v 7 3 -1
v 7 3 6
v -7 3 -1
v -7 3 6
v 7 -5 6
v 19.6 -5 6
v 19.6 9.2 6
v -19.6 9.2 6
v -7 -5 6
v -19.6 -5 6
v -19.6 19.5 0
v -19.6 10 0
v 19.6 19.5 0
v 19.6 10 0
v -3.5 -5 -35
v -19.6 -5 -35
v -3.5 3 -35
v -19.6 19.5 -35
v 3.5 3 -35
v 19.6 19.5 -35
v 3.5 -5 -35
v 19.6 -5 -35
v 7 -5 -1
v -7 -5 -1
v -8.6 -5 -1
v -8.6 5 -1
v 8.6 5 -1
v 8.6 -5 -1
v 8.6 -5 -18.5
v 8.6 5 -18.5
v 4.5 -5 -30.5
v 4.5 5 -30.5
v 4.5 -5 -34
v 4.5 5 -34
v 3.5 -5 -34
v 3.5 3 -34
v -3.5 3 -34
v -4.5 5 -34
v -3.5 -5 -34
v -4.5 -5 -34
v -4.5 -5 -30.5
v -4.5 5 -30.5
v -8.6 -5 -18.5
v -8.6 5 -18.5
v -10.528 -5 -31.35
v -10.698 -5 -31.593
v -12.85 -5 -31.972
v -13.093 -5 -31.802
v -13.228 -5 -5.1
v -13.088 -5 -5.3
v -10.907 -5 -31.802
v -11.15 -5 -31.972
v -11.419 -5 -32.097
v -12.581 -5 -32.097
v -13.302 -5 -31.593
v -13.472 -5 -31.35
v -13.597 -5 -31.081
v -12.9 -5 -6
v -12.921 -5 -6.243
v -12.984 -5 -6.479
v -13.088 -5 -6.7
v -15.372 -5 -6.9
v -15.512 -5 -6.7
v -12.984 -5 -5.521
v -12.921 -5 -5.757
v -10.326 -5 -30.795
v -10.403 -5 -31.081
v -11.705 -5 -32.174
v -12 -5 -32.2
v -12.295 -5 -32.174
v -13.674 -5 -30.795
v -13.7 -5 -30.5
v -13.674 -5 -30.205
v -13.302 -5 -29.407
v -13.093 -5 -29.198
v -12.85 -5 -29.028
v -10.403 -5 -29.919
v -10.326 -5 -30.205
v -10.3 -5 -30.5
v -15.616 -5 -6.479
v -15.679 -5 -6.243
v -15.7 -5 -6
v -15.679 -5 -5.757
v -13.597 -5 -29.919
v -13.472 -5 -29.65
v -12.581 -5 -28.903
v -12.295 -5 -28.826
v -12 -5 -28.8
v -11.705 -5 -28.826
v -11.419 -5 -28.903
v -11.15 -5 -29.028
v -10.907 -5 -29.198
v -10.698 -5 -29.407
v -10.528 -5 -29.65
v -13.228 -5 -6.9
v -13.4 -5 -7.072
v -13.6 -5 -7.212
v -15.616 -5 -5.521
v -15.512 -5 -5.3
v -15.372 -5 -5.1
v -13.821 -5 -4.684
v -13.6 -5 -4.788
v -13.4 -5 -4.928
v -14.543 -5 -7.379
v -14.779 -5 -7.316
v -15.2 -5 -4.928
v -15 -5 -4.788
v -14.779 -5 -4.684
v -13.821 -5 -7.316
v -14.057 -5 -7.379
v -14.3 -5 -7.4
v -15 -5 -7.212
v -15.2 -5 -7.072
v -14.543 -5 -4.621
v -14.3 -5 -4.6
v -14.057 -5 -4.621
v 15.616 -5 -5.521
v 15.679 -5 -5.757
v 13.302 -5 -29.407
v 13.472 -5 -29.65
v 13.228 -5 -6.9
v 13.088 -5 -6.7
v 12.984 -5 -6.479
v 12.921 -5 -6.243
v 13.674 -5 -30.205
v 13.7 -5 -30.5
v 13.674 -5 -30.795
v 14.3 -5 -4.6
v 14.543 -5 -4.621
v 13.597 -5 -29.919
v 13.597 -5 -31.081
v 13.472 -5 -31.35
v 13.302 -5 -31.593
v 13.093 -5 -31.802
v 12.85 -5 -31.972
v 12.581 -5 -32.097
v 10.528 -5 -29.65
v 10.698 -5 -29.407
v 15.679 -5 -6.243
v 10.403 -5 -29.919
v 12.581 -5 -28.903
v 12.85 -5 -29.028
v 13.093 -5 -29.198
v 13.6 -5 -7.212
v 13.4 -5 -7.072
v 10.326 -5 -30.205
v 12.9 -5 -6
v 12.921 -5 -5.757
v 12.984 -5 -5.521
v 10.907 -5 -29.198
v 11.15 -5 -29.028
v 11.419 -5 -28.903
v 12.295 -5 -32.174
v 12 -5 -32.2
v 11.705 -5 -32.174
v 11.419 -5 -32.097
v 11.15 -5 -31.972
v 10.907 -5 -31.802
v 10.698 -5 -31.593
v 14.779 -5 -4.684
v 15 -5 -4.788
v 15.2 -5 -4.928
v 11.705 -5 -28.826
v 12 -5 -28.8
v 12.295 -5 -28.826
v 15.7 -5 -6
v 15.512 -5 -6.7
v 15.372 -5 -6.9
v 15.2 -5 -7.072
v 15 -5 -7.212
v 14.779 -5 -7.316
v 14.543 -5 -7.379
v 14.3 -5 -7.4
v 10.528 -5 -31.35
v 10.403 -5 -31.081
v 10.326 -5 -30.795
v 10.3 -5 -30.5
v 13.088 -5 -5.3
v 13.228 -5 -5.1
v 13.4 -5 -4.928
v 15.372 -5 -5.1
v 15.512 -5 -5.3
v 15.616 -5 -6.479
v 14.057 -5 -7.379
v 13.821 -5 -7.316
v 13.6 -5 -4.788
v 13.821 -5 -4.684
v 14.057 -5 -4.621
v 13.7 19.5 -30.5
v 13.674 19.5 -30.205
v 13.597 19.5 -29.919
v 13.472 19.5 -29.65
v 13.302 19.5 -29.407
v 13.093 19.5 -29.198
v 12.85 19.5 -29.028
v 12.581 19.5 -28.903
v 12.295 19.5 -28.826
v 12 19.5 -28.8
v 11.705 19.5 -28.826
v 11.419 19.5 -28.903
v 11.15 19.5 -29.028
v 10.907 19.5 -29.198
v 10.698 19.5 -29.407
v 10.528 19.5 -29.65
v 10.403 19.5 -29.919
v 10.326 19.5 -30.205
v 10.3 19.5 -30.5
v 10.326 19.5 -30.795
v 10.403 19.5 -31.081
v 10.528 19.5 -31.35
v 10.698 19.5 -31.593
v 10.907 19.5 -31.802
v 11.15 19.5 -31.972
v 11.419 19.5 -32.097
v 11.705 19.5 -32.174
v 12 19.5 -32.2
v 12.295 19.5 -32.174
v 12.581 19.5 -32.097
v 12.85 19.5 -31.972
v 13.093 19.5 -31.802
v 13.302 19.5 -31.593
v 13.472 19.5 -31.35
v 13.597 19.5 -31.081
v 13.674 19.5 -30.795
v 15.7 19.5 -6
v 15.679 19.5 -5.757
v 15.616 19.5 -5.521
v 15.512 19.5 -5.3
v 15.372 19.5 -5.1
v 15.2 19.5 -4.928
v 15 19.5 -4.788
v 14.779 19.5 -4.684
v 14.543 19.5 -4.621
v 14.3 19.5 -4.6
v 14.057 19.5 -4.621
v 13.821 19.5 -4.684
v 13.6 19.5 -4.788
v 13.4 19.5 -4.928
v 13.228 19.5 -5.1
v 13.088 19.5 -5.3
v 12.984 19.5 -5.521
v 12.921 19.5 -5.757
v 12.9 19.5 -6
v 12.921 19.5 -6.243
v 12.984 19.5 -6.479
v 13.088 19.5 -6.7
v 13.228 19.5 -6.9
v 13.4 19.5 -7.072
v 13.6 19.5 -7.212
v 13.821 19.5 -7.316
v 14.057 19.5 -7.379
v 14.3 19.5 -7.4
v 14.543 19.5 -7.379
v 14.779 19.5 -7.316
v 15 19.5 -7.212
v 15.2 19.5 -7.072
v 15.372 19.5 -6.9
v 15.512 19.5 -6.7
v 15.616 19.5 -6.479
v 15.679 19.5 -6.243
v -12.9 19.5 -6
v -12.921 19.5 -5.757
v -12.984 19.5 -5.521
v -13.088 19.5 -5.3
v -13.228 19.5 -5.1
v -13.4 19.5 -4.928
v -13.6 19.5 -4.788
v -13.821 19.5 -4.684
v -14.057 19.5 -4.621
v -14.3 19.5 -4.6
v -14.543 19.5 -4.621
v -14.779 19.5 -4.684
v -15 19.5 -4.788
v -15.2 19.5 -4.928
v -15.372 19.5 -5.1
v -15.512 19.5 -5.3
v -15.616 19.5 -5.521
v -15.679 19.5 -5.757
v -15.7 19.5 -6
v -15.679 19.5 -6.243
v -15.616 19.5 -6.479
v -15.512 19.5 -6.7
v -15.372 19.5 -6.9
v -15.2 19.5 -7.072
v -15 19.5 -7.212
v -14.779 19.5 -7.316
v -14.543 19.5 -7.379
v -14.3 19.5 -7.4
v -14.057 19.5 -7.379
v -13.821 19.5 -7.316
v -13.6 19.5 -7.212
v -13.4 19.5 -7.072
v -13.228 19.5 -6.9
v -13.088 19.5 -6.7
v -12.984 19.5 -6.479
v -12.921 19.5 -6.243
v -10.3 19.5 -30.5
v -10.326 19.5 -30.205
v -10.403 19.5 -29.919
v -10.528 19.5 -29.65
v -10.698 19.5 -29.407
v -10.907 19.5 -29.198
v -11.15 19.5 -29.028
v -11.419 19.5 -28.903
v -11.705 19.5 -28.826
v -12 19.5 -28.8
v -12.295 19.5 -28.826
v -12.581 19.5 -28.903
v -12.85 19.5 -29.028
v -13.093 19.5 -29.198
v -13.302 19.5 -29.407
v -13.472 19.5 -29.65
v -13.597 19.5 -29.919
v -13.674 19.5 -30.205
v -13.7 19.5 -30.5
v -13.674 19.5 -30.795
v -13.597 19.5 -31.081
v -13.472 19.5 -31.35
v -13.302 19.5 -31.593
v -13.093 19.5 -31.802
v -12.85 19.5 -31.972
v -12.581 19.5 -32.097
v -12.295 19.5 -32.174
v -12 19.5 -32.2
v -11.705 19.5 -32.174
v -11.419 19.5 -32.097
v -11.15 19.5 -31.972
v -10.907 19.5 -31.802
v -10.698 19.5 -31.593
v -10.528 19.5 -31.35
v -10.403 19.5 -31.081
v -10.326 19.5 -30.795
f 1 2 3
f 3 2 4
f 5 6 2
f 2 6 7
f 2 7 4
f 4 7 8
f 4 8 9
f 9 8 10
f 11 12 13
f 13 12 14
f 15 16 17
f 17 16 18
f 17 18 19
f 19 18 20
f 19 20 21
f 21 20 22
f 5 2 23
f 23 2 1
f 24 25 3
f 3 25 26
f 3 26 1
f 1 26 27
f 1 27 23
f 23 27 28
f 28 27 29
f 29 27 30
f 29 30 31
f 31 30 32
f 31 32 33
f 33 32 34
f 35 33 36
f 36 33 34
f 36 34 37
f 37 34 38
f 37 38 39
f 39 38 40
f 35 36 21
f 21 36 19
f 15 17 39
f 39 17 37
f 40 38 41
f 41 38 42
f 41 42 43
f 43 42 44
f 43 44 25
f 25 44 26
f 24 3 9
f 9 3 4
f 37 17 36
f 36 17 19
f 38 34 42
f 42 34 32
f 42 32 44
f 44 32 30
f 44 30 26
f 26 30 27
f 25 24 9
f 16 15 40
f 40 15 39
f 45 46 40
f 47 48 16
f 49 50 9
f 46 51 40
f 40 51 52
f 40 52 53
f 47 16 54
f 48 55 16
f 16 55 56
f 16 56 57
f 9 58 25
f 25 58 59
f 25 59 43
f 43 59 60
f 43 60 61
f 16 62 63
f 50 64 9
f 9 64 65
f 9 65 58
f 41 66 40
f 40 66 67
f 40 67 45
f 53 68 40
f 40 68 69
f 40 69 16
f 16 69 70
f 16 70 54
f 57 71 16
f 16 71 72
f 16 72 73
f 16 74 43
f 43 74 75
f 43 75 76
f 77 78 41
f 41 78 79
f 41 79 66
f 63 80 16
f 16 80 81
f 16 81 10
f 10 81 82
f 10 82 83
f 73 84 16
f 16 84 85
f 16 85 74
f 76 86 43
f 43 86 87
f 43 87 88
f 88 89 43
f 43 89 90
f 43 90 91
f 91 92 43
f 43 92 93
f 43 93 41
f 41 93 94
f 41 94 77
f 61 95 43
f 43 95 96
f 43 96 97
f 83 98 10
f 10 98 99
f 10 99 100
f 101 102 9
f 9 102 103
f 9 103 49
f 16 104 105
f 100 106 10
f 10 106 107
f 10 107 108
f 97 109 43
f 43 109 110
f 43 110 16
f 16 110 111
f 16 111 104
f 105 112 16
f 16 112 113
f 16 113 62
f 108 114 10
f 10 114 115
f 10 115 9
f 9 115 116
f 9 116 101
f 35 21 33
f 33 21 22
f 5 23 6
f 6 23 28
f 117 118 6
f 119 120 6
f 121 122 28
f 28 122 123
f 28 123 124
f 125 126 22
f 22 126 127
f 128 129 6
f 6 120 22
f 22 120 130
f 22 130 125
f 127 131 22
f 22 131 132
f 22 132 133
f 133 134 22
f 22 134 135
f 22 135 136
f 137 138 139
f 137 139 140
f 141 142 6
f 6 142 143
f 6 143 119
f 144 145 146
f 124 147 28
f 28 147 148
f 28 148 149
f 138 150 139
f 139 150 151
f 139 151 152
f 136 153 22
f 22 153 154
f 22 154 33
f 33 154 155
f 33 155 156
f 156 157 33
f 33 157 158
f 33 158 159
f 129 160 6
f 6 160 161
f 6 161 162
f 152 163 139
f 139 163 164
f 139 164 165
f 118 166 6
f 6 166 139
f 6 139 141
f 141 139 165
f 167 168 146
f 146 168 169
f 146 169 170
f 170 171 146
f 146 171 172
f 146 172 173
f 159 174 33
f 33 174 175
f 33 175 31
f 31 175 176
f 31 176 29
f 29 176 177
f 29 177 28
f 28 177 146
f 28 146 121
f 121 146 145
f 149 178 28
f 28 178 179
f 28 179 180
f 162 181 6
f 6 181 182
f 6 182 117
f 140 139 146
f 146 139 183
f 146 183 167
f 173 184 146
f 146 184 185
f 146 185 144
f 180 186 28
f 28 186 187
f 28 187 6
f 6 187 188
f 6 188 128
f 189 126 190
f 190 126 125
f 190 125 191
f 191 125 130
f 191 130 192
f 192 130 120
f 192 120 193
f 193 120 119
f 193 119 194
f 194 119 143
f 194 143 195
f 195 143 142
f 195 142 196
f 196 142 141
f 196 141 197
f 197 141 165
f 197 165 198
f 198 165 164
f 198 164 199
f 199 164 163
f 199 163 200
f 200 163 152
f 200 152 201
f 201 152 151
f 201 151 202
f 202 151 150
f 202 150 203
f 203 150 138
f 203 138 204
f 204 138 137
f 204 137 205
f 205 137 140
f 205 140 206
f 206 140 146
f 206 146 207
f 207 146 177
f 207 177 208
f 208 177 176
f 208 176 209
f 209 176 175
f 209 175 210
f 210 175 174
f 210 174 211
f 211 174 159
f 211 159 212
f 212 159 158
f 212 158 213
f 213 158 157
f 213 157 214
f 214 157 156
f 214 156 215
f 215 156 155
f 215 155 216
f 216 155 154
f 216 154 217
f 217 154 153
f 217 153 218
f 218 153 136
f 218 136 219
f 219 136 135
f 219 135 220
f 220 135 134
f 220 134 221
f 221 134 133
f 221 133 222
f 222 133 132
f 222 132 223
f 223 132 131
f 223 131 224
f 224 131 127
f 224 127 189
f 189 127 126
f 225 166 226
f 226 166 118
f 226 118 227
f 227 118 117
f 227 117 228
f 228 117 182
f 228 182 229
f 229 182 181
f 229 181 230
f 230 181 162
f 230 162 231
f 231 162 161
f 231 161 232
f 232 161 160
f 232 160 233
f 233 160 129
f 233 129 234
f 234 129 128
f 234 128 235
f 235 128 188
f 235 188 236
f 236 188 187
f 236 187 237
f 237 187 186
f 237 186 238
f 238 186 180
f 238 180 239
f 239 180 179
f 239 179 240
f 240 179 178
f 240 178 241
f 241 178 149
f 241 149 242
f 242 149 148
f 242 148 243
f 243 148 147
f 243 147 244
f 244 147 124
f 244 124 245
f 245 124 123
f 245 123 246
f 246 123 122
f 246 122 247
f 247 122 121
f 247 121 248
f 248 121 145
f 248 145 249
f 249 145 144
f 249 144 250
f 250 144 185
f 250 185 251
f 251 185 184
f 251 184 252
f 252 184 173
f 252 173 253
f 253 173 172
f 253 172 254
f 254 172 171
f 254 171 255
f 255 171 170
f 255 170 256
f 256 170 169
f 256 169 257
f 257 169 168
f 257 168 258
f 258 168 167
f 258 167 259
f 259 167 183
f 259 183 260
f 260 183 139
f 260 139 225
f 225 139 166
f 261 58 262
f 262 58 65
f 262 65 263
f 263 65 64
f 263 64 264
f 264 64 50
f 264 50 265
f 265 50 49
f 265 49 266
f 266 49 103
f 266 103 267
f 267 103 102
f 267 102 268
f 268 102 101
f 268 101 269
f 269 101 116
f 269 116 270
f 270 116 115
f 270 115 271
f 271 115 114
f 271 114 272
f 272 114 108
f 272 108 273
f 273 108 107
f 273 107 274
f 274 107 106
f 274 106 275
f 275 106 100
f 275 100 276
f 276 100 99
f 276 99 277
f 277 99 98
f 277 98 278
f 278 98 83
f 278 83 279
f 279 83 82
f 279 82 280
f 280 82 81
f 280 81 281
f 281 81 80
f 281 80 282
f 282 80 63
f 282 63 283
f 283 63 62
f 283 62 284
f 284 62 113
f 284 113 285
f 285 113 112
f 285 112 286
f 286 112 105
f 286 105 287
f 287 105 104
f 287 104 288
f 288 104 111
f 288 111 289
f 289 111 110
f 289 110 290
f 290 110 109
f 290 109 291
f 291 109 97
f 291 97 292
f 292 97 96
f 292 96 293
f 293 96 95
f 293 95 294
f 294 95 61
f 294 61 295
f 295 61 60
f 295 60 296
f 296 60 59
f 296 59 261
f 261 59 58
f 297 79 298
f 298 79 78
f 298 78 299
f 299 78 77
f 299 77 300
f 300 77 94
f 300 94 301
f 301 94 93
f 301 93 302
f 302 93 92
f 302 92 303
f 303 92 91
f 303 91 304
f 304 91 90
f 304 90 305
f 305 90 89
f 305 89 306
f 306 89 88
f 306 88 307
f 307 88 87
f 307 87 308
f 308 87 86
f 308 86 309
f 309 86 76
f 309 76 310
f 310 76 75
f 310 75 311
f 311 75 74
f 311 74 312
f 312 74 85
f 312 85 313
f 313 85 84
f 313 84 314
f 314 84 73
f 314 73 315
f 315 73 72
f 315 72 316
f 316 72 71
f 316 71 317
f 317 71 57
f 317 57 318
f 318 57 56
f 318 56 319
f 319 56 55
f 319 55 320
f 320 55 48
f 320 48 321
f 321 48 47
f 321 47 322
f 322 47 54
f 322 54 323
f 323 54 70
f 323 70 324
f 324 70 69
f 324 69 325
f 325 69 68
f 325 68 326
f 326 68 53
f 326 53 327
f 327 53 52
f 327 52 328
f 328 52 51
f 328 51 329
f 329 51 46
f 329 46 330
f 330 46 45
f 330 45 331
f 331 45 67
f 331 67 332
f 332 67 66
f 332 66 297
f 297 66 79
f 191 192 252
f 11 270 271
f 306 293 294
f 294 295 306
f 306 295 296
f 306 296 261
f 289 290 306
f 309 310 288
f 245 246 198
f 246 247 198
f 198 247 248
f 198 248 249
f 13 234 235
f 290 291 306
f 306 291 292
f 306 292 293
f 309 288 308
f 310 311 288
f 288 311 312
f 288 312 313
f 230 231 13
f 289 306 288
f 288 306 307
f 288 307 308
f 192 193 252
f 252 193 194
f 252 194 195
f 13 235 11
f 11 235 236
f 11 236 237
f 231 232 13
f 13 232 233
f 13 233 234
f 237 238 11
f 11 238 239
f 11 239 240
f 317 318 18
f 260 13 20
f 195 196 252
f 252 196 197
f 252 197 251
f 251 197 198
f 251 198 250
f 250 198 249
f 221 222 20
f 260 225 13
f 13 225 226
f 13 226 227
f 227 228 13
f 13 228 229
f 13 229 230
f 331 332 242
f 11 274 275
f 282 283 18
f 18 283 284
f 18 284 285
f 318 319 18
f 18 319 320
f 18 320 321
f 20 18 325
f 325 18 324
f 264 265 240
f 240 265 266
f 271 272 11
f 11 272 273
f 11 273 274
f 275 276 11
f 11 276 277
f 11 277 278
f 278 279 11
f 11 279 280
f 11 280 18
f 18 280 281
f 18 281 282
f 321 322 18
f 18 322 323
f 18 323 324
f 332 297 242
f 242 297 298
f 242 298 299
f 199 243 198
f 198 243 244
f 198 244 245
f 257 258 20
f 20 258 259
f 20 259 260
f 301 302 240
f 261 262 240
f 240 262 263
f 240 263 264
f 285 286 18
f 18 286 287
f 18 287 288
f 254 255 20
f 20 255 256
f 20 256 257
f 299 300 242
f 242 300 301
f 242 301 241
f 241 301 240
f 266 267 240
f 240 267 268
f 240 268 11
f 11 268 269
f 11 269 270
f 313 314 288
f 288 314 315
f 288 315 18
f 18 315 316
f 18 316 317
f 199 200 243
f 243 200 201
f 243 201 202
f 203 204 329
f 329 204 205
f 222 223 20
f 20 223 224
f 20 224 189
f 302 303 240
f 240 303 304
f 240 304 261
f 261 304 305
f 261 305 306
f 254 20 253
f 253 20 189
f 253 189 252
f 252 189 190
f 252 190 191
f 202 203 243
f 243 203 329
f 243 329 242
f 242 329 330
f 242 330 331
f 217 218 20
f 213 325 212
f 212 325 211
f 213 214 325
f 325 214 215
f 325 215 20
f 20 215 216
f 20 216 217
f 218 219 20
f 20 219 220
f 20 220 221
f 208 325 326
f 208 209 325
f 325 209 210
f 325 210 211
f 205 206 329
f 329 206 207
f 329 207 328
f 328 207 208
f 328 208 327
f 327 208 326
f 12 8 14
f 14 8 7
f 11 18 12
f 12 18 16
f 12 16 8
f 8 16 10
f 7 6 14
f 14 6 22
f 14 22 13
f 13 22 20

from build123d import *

# Parameters (mm, degrees)
SKETCH_1_W          = 40
SKETCH_1_H          = 20
EXTRUDE_1_DEPTH     = 6
SKETCH_2_W          = 40
SKETCH_2_H          = 32.5
EXTRUDE_2_DEPTH     = 35
CUT_EXTRUDE_1_DEPTH = 13
CUT_EXTRUDE_2_DEPTH = 2
SKETCH_6_W          = 40
SKETCH_6_H          = 41
CUT_EXTRUDE_3_DEPTH = 5
SKETCH_8_R          = 1.7
SKETCH_8_R_2        = 1.4
CUT_EXTRUDE_4_DEPTH = 49.79805324
CUT_EXTRUDE_5_REACH = 48.165
SKETCH_9_W          = 40
SKETCH_9_H          = 3
CHAMFER_1_SIZE2     = 6
CHAMFER_1_SIZE      = 0.8
CUT_EXTRUDE_6_REACH = 49.173
SKETCH_11_W         = 0.4
SKETCH_11_H         = 41


with BuildPart() as part:
    # Эскиз1 → Бобышка-Вытянуть1 (new body)
    with BuildSketch(Plane.XY):
        Rectangle(SKETCH_1_W, SKETCH_1_H)
    extrude(amount=EXTRUDE_1_DEPTH)

    # Эскиз2 → Бобышка-Вытянуть2 (add)
    with BuildSketch(Plane(origin=(0, 0, 0), x_dir=(-1, 0, 0), z_dir=(0, 0, -1))):
        with Locations((0, 6.25)):
            Rectangle(SKETCH_2_W, SKETCH_2_H)
    extrude(amount=EXTRUDE_2_DEPTH)

    # Эскиз3 → Вырез-Вытянуть1 (cut)
    with BuildSketch(Plane.XZ.offset(10)):
        Polygon((-7, 6), (-7, -1), (-8.6, -1), (-8.6, -18.5), (-4.5, -30.5), (-4.5, -34), (-3.5, -34), (-3.5, -35), (3.5, -35), (3.5, -34), (4.5, -34), (4.5, -30.5), (8.6, -18.5), (8.6, -1), (7, -1), (7, 6), align=None)
    extrude(amount=-CUT_EXTRUDE_1_DEPTH, mode=Mode.SUBTRACT)

    # Эскиз5 → Вырез-Вытянуть2 (cut)
    with BuildSketch(Plane.XZ.offset(-3)):
        Polygon((-8.6, -1), (8.6, -1), (8.6, -18.5), (4.5, -30.5), (4.5, -34), (-4.5, -34), (-4.5, -30.5), (-8.6, -18.5), align=None)
    extrude(amount=-CUT_EXTRUDE_2_DEPTH, mode=Mode.SUBTRACT)

    # Эскиз6 → Вырез-Вытянуть3 (cut)
    with BuildSketch(Plane.XZ.offset(10)):
        with Locations((0, -14.5)):
            Rectangle(SKETCH_6_W, SKETCH_6_H)
    extrude(amount=-CUT_EXTRUDE_3_DEPTH, mode=Mode.SUBTRACT)

    # Эскиз8 → Вырез-Вытянуть4 (cut, through all)
    with BuildSketch(Plane.XZ.offset(5)):
        with Locations((12, -30.5)):
            Circle(SKETCH_8_R)
        with Locations((14.3, -6)):
            Circle(SKETCH_8_R_2)
        with Locations(Location((-12, -30.5, 0), (0, 0, 180))):
            Circle(SKETCH_8_R)
        with Locations(Location((-14.3, -6, 0), (0, 0, 180))):
            Circle(SKETCH_8_R_2)
    extrude(amount=-CUT_EXTRUDE_4_DEPTH, mode=Mode.SUBTRACT)

    # Вырез-Вытянуть5: up to this face of the body (flat: up to its plane)
    cut_extrude_5_end = Plane(part.part.faces().sort_by_distance((0, 9.272988506, -35))[0])
    # Эскиз9 → Вырез-Вытянуть5 (cut, up to the picked face)
    with BuildSketch(Plane.XY, mode=Mode.PRIVATE) as cut_extrude_5_sk1:
        with Locations((0, 21)):
            Rectangle(SKETCH_9_W, SKETCH_9_H)
    cut_extrude_5_tool1 = split(extrude(cut_extrude_5_sk1.sketch, amount=-CUT_EXTRUDE_5_REACH, mode=Mode.PRIVATE), bisect_by=cut_extrude_5_end, keep=Keep.BOTH, mode=Mode.PRIVATE)
    add(cut_extrude_5_tool1.solids().sort_by(Axis((0, 21, 0), (0, 0, -1)))[0], mode=Mode.SUBTRACT)

    # Фаска1
    chamfer_1_edges = [part.edges().sort_by_distance(p)[0] for p in [
        (0, 10, 6),
    ]]
    chamfer_1_side = [part.faces().sort_by_distance(p)[0] for p in [
        (0, 9.984, 6),
    ]]
    chamfer(chamfer_1_edges, length=CHAMFER_1_SIZE - 0.0001, length2=CHAMFER_1_SIZE2 - 0.0001, reference=chamfer_1_side[0])  # a hair under: the kernel refuses the full size

    # Вырез-Вытянуть6: up to this face of the body (flat: up to its plane)
    cut_extrude_6_end = Plane(part.part.faces().sort_by_distance((13.552984989, -5, -15.226398396))[0])
    # Эскиз11 → Вырез-Вытянуть6 (cut, up to the picked face)
    with BuildSketch(Plane(origin=(0, 19.5, 0), x_dir=(1, 0, 0), z_dir=(0, 1, 0)), mode=Mode.PRIVATE) as cut_extrude_6_sk1:
        with Locations((-19.8, 14.5)):
            Rectangle(SKETCH_11_W, SKETCH_11_H)
    cut_extrude_6_tool1 = split(extrude(cut_extrude_6_sk1.sketch, amount=-CUT_EXTRUDE_6_REACH, mode=Mode.PRIVATE), bisect_by=cut_extrude_6_end, keep=Keep.BOTH, mode=Mode.PRIVATE)
    # Эскиз11 → Вырез-Вытянуть6 (cut, up to the picked face)
    with BuildSketch(Plane(origin=(0, 19.5, 0), x_dir=(1, 0, 0), z_dir=(0, 1, 0)), mode=Mode.PRIVATE) as cut_extrude_6_sk2:
        with Locations((19.8, 14.5)):
            Rectangle(SKETCH_11_W, SKETCH_11_H)
    cut_extrude_6_tool2 = split(extrude(cut_extrude_6_sk2.sketch, amount=-CUT_EXTRUDE_6_REACH, mode=Mode.PRIVATE), bisect_by=cut_extrude_6_end, keep=Keep.BOTH, mode=Mode.PRIVATE)
    add(cut_extrude_6_tool1.solids().sort_by(Axis((-19.8, 19.5, -14.5), (0, -1, 0)))[0], mode=Mode.SUBTRACT)
    add(cut_extrude_6_tool2.solids().sort_by(Axis((19.8, 19.5, -14.5), (0, -1, 0)))[0], mode=Mode.SUBTRACT)


solid = part.part
